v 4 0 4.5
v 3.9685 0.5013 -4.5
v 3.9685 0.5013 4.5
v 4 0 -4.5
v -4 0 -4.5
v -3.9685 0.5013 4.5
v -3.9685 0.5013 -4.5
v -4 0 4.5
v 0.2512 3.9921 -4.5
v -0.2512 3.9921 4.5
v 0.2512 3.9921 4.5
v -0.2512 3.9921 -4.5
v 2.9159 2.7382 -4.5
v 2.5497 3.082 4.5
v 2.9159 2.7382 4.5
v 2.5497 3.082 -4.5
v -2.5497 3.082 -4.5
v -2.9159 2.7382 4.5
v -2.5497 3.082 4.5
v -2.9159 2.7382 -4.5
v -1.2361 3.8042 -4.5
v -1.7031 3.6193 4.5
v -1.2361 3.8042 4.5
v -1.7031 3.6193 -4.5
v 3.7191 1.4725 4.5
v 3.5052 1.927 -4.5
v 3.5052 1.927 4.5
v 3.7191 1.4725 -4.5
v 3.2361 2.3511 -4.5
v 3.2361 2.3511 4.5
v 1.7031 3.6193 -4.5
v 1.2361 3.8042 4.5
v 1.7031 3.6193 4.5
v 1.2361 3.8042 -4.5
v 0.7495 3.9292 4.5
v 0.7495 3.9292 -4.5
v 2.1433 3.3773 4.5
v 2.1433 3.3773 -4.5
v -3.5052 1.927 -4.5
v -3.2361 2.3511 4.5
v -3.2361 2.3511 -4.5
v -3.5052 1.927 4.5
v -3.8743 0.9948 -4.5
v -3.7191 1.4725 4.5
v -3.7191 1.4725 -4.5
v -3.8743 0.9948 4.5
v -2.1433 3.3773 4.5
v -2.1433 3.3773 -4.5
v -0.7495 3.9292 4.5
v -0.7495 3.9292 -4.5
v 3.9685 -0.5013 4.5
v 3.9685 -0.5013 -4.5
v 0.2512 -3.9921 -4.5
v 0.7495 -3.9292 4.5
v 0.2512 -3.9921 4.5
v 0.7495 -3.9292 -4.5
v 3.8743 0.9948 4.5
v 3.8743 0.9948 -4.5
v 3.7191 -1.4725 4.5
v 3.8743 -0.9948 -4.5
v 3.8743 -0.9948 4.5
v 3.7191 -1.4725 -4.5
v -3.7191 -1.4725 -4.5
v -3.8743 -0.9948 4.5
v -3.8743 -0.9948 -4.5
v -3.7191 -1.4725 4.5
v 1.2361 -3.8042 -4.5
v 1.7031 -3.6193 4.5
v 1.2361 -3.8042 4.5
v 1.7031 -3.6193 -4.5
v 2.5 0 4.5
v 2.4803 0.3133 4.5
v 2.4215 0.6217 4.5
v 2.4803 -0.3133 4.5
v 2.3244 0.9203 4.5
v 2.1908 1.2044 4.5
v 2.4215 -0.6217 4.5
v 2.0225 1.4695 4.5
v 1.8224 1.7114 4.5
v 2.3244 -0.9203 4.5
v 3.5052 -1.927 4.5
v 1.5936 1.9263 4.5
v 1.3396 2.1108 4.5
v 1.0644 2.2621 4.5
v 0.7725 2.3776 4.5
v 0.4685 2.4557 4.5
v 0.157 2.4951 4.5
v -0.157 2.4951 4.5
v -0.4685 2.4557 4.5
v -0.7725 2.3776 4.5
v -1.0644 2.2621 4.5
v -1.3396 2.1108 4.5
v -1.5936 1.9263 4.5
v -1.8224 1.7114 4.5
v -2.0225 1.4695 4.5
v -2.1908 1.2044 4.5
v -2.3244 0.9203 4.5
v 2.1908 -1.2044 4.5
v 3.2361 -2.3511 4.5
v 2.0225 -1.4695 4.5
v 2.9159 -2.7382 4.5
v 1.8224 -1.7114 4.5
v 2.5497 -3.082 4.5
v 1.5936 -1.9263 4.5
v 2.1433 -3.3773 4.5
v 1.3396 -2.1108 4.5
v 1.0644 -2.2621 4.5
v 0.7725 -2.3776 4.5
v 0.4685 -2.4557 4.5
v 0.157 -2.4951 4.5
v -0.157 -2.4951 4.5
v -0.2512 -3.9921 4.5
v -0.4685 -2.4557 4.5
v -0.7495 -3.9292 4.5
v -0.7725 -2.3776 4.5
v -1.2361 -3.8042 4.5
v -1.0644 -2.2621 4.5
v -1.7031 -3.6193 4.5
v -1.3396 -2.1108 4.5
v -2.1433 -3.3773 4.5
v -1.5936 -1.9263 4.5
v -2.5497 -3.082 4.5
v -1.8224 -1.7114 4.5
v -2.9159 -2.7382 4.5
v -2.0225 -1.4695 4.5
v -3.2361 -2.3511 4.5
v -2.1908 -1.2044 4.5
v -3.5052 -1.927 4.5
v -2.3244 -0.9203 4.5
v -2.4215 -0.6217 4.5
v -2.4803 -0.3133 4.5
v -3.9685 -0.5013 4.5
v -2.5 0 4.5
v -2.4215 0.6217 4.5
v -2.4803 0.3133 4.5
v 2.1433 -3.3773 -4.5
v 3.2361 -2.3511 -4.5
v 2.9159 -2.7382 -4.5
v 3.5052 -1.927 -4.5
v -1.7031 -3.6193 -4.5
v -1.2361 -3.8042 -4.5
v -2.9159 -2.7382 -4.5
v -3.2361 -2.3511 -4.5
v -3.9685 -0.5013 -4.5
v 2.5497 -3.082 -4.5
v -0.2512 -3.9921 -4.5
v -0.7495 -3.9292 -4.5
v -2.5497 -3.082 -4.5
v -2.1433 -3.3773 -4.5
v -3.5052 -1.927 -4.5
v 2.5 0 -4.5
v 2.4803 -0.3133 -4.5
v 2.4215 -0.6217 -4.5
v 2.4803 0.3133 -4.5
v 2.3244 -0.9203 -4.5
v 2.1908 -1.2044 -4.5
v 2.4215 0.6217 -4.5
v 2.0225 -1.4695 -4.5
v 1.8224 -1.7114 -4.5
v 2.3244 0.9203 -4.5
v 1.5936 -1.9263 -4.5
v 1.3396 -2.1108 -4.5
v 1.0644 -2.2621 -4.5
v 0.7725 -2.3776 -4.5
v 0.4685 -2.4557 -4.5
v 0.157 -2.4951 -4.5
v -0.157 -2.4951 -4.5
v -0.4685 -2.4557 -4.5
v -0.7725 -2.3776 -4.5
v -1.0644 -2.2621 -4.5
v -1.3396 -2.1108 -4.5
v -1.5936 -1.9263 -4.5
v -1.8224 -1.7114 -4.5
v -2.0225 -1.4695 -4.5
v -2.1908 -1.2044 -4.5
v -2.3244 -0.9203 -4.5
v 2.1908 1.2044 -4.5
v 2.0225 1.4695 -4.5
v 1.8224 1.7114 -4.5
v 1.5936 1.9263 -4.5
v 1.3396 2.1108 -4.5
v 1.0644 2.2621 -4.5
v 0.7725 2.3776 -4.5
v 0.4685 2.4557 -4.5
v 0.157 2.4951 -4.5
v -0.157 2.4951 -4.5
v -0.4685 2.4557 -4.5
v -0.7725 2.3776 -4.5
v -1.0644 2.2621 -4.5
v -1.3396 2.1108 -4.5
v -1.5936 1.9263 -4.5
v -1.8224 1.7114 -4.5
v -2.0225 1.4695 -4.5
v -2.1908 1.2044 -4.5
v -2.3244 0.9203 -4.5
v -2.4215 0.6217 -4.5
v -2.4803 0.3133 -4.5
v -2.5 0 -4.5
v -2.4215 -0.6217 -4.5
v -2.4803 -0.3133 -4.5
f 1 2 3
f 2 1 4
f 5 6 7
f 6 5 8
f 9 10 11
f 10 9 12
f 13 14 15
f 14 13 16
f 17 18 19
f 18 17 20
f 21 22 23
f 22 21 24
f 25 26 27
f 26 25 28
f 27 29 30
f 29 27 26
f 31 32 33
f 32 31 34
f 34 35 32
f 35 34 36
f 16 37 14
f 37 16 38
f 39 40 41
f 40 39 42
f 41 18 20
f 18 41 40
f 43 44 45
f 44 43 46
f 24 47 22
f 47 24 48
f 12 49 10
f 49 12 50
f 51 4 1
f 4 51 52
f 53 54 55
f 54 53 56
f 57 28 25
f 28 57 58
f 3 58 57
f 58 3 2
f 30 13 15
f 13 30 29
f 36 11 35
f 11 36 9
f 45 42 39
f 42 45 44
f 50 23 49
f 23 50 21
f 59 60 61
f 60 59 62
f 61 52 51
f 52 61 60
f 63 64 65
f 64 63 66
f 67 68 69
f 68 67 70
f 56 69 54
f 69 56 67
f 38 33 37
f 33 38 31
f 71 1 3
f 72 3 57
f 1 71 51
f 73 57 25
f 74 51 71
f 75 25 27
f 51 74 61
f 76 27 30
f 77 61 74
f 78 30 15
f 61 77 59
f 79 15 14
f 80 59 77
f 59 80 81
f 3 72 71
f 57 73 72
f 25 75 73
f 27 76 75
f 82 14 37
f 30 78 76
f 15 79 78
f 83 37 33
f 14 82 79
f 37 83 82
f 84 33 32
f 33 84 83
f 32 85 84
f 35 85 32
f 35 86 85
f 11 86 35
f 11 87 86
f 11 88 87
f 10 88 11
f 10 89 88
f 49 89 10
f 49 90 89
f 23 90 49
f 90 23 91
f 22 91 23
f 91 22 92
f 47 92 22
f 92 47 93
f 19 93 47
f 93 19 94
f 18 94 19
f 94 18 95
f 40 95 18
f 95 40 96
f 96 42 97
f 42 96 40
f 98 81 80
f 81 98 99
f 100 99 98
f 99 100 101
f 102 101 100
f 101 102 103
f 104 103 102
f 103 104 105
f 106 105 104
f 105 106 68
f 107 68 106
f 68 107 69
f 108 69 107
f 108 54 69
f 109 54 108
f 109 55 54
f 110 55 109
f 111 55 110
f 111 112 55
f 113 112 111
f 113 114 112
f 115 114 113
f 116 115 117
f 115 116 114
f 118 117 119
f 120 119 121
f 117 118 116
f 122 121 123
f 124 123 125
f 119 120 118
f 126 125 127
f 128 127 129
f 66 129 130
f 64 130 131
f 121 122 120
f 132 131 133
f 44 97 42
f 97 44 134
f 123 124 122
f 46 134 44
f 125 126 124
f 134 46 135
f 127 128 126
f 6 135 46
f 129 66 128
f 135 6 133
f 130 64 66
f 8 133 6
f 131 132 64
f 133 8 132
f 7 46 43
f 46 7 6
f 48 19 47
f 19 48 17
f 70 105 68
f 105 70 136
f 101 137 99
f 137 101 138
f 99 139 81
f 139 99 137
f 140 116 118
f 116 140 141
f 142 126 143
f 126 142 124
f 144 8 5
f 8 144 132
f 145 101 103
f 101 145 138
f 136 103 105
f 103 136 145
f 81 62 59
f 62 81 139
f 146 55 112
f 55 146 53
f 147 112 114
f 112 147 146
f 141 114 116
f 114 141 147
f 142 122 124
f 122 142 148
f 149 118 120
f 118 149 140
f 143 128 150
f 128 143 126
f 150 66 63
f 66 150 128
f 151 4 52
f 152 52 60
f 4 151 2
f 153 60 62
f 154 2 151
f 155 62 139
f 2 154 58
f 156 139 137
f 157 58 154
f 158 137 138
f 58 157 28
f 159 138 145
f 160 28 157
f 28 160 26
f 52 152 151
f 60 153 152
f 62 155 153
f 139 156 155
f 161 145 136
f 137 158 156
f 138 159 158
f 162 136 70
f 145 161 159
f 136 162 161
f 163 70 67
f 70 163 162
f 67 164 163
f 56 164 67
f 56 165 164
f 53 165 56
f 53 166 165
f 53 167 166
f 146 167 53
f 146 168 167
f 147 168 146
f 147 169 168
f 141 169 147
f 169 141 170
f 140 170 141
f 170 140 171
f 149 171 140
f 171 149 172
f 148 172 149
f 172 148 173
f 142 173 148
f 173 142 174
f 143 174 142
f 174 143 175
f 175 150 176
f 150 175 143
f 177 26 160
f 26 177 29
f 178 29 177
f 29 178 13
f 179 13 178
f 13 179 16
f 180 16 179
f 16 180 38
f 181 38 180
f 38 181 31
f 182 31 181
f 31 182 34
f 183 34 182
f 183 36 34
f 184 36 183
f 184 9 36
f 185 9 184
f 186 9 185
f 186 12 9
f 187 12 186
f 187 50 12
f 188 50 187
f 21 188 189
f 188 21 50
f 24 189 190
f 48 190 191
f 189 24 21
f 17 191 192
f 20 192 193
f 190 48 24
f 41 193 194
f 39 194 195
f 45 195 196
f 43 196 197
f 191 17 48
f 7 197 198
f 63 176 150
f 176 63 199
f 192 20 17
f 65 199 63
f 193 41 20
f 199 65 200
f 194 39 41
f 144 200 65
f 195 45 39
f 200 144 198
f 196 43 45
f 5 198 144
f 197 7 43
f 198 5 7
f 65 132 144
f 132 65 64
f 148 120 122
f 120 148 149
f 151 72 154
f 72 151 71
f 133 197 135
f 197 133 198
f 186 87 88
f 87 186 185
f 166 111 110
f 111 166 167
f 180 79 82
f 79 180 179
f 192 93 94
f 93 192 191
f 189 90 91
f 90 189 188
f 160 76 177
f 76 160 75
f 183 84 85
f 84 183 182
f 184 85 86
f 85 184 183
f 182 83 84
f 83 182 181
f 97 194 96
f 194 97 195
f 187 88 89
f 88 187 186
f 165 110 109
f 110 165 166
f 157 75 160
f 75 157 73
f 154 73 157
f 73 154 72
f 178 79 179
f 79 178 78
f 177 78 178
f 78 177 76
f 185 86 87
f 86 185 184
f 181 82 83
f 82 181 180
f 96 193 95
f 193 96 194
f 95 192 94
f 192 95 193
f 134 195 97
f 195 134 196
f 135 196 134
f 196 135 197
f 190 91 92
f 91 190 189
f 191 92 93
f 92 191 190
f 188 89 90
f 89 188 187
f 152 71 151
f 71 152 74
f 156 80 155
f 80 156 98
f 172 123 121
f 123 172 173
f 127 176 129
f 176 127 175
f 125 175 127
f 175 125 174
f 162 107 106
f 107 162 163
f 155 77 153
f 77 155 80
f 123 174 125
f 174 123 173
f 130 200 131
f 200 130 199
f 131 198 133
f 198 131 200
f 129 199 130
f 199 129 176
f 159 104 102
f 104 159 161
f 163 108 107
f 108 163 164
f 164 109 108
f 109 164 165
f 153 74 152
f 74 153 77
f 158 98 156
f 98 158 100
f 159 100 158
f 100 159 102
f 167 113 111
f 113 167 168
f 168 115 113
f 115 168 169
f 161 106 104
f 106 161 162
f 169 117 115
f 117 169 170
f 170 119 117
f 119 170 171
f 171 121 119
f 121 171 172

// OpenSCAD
$fn = 50;


difference() {
	union() {
		translate(v = [0, 0, -4.5000000000]) {
			cylinder(h = 9, r = 4.0000000000);
		}
	}
	union() {
		translate(v = [0, 0, -100.0000000000]) {
			cylinder(h = 200, r = 2.5000000000);
		}
	}
}
